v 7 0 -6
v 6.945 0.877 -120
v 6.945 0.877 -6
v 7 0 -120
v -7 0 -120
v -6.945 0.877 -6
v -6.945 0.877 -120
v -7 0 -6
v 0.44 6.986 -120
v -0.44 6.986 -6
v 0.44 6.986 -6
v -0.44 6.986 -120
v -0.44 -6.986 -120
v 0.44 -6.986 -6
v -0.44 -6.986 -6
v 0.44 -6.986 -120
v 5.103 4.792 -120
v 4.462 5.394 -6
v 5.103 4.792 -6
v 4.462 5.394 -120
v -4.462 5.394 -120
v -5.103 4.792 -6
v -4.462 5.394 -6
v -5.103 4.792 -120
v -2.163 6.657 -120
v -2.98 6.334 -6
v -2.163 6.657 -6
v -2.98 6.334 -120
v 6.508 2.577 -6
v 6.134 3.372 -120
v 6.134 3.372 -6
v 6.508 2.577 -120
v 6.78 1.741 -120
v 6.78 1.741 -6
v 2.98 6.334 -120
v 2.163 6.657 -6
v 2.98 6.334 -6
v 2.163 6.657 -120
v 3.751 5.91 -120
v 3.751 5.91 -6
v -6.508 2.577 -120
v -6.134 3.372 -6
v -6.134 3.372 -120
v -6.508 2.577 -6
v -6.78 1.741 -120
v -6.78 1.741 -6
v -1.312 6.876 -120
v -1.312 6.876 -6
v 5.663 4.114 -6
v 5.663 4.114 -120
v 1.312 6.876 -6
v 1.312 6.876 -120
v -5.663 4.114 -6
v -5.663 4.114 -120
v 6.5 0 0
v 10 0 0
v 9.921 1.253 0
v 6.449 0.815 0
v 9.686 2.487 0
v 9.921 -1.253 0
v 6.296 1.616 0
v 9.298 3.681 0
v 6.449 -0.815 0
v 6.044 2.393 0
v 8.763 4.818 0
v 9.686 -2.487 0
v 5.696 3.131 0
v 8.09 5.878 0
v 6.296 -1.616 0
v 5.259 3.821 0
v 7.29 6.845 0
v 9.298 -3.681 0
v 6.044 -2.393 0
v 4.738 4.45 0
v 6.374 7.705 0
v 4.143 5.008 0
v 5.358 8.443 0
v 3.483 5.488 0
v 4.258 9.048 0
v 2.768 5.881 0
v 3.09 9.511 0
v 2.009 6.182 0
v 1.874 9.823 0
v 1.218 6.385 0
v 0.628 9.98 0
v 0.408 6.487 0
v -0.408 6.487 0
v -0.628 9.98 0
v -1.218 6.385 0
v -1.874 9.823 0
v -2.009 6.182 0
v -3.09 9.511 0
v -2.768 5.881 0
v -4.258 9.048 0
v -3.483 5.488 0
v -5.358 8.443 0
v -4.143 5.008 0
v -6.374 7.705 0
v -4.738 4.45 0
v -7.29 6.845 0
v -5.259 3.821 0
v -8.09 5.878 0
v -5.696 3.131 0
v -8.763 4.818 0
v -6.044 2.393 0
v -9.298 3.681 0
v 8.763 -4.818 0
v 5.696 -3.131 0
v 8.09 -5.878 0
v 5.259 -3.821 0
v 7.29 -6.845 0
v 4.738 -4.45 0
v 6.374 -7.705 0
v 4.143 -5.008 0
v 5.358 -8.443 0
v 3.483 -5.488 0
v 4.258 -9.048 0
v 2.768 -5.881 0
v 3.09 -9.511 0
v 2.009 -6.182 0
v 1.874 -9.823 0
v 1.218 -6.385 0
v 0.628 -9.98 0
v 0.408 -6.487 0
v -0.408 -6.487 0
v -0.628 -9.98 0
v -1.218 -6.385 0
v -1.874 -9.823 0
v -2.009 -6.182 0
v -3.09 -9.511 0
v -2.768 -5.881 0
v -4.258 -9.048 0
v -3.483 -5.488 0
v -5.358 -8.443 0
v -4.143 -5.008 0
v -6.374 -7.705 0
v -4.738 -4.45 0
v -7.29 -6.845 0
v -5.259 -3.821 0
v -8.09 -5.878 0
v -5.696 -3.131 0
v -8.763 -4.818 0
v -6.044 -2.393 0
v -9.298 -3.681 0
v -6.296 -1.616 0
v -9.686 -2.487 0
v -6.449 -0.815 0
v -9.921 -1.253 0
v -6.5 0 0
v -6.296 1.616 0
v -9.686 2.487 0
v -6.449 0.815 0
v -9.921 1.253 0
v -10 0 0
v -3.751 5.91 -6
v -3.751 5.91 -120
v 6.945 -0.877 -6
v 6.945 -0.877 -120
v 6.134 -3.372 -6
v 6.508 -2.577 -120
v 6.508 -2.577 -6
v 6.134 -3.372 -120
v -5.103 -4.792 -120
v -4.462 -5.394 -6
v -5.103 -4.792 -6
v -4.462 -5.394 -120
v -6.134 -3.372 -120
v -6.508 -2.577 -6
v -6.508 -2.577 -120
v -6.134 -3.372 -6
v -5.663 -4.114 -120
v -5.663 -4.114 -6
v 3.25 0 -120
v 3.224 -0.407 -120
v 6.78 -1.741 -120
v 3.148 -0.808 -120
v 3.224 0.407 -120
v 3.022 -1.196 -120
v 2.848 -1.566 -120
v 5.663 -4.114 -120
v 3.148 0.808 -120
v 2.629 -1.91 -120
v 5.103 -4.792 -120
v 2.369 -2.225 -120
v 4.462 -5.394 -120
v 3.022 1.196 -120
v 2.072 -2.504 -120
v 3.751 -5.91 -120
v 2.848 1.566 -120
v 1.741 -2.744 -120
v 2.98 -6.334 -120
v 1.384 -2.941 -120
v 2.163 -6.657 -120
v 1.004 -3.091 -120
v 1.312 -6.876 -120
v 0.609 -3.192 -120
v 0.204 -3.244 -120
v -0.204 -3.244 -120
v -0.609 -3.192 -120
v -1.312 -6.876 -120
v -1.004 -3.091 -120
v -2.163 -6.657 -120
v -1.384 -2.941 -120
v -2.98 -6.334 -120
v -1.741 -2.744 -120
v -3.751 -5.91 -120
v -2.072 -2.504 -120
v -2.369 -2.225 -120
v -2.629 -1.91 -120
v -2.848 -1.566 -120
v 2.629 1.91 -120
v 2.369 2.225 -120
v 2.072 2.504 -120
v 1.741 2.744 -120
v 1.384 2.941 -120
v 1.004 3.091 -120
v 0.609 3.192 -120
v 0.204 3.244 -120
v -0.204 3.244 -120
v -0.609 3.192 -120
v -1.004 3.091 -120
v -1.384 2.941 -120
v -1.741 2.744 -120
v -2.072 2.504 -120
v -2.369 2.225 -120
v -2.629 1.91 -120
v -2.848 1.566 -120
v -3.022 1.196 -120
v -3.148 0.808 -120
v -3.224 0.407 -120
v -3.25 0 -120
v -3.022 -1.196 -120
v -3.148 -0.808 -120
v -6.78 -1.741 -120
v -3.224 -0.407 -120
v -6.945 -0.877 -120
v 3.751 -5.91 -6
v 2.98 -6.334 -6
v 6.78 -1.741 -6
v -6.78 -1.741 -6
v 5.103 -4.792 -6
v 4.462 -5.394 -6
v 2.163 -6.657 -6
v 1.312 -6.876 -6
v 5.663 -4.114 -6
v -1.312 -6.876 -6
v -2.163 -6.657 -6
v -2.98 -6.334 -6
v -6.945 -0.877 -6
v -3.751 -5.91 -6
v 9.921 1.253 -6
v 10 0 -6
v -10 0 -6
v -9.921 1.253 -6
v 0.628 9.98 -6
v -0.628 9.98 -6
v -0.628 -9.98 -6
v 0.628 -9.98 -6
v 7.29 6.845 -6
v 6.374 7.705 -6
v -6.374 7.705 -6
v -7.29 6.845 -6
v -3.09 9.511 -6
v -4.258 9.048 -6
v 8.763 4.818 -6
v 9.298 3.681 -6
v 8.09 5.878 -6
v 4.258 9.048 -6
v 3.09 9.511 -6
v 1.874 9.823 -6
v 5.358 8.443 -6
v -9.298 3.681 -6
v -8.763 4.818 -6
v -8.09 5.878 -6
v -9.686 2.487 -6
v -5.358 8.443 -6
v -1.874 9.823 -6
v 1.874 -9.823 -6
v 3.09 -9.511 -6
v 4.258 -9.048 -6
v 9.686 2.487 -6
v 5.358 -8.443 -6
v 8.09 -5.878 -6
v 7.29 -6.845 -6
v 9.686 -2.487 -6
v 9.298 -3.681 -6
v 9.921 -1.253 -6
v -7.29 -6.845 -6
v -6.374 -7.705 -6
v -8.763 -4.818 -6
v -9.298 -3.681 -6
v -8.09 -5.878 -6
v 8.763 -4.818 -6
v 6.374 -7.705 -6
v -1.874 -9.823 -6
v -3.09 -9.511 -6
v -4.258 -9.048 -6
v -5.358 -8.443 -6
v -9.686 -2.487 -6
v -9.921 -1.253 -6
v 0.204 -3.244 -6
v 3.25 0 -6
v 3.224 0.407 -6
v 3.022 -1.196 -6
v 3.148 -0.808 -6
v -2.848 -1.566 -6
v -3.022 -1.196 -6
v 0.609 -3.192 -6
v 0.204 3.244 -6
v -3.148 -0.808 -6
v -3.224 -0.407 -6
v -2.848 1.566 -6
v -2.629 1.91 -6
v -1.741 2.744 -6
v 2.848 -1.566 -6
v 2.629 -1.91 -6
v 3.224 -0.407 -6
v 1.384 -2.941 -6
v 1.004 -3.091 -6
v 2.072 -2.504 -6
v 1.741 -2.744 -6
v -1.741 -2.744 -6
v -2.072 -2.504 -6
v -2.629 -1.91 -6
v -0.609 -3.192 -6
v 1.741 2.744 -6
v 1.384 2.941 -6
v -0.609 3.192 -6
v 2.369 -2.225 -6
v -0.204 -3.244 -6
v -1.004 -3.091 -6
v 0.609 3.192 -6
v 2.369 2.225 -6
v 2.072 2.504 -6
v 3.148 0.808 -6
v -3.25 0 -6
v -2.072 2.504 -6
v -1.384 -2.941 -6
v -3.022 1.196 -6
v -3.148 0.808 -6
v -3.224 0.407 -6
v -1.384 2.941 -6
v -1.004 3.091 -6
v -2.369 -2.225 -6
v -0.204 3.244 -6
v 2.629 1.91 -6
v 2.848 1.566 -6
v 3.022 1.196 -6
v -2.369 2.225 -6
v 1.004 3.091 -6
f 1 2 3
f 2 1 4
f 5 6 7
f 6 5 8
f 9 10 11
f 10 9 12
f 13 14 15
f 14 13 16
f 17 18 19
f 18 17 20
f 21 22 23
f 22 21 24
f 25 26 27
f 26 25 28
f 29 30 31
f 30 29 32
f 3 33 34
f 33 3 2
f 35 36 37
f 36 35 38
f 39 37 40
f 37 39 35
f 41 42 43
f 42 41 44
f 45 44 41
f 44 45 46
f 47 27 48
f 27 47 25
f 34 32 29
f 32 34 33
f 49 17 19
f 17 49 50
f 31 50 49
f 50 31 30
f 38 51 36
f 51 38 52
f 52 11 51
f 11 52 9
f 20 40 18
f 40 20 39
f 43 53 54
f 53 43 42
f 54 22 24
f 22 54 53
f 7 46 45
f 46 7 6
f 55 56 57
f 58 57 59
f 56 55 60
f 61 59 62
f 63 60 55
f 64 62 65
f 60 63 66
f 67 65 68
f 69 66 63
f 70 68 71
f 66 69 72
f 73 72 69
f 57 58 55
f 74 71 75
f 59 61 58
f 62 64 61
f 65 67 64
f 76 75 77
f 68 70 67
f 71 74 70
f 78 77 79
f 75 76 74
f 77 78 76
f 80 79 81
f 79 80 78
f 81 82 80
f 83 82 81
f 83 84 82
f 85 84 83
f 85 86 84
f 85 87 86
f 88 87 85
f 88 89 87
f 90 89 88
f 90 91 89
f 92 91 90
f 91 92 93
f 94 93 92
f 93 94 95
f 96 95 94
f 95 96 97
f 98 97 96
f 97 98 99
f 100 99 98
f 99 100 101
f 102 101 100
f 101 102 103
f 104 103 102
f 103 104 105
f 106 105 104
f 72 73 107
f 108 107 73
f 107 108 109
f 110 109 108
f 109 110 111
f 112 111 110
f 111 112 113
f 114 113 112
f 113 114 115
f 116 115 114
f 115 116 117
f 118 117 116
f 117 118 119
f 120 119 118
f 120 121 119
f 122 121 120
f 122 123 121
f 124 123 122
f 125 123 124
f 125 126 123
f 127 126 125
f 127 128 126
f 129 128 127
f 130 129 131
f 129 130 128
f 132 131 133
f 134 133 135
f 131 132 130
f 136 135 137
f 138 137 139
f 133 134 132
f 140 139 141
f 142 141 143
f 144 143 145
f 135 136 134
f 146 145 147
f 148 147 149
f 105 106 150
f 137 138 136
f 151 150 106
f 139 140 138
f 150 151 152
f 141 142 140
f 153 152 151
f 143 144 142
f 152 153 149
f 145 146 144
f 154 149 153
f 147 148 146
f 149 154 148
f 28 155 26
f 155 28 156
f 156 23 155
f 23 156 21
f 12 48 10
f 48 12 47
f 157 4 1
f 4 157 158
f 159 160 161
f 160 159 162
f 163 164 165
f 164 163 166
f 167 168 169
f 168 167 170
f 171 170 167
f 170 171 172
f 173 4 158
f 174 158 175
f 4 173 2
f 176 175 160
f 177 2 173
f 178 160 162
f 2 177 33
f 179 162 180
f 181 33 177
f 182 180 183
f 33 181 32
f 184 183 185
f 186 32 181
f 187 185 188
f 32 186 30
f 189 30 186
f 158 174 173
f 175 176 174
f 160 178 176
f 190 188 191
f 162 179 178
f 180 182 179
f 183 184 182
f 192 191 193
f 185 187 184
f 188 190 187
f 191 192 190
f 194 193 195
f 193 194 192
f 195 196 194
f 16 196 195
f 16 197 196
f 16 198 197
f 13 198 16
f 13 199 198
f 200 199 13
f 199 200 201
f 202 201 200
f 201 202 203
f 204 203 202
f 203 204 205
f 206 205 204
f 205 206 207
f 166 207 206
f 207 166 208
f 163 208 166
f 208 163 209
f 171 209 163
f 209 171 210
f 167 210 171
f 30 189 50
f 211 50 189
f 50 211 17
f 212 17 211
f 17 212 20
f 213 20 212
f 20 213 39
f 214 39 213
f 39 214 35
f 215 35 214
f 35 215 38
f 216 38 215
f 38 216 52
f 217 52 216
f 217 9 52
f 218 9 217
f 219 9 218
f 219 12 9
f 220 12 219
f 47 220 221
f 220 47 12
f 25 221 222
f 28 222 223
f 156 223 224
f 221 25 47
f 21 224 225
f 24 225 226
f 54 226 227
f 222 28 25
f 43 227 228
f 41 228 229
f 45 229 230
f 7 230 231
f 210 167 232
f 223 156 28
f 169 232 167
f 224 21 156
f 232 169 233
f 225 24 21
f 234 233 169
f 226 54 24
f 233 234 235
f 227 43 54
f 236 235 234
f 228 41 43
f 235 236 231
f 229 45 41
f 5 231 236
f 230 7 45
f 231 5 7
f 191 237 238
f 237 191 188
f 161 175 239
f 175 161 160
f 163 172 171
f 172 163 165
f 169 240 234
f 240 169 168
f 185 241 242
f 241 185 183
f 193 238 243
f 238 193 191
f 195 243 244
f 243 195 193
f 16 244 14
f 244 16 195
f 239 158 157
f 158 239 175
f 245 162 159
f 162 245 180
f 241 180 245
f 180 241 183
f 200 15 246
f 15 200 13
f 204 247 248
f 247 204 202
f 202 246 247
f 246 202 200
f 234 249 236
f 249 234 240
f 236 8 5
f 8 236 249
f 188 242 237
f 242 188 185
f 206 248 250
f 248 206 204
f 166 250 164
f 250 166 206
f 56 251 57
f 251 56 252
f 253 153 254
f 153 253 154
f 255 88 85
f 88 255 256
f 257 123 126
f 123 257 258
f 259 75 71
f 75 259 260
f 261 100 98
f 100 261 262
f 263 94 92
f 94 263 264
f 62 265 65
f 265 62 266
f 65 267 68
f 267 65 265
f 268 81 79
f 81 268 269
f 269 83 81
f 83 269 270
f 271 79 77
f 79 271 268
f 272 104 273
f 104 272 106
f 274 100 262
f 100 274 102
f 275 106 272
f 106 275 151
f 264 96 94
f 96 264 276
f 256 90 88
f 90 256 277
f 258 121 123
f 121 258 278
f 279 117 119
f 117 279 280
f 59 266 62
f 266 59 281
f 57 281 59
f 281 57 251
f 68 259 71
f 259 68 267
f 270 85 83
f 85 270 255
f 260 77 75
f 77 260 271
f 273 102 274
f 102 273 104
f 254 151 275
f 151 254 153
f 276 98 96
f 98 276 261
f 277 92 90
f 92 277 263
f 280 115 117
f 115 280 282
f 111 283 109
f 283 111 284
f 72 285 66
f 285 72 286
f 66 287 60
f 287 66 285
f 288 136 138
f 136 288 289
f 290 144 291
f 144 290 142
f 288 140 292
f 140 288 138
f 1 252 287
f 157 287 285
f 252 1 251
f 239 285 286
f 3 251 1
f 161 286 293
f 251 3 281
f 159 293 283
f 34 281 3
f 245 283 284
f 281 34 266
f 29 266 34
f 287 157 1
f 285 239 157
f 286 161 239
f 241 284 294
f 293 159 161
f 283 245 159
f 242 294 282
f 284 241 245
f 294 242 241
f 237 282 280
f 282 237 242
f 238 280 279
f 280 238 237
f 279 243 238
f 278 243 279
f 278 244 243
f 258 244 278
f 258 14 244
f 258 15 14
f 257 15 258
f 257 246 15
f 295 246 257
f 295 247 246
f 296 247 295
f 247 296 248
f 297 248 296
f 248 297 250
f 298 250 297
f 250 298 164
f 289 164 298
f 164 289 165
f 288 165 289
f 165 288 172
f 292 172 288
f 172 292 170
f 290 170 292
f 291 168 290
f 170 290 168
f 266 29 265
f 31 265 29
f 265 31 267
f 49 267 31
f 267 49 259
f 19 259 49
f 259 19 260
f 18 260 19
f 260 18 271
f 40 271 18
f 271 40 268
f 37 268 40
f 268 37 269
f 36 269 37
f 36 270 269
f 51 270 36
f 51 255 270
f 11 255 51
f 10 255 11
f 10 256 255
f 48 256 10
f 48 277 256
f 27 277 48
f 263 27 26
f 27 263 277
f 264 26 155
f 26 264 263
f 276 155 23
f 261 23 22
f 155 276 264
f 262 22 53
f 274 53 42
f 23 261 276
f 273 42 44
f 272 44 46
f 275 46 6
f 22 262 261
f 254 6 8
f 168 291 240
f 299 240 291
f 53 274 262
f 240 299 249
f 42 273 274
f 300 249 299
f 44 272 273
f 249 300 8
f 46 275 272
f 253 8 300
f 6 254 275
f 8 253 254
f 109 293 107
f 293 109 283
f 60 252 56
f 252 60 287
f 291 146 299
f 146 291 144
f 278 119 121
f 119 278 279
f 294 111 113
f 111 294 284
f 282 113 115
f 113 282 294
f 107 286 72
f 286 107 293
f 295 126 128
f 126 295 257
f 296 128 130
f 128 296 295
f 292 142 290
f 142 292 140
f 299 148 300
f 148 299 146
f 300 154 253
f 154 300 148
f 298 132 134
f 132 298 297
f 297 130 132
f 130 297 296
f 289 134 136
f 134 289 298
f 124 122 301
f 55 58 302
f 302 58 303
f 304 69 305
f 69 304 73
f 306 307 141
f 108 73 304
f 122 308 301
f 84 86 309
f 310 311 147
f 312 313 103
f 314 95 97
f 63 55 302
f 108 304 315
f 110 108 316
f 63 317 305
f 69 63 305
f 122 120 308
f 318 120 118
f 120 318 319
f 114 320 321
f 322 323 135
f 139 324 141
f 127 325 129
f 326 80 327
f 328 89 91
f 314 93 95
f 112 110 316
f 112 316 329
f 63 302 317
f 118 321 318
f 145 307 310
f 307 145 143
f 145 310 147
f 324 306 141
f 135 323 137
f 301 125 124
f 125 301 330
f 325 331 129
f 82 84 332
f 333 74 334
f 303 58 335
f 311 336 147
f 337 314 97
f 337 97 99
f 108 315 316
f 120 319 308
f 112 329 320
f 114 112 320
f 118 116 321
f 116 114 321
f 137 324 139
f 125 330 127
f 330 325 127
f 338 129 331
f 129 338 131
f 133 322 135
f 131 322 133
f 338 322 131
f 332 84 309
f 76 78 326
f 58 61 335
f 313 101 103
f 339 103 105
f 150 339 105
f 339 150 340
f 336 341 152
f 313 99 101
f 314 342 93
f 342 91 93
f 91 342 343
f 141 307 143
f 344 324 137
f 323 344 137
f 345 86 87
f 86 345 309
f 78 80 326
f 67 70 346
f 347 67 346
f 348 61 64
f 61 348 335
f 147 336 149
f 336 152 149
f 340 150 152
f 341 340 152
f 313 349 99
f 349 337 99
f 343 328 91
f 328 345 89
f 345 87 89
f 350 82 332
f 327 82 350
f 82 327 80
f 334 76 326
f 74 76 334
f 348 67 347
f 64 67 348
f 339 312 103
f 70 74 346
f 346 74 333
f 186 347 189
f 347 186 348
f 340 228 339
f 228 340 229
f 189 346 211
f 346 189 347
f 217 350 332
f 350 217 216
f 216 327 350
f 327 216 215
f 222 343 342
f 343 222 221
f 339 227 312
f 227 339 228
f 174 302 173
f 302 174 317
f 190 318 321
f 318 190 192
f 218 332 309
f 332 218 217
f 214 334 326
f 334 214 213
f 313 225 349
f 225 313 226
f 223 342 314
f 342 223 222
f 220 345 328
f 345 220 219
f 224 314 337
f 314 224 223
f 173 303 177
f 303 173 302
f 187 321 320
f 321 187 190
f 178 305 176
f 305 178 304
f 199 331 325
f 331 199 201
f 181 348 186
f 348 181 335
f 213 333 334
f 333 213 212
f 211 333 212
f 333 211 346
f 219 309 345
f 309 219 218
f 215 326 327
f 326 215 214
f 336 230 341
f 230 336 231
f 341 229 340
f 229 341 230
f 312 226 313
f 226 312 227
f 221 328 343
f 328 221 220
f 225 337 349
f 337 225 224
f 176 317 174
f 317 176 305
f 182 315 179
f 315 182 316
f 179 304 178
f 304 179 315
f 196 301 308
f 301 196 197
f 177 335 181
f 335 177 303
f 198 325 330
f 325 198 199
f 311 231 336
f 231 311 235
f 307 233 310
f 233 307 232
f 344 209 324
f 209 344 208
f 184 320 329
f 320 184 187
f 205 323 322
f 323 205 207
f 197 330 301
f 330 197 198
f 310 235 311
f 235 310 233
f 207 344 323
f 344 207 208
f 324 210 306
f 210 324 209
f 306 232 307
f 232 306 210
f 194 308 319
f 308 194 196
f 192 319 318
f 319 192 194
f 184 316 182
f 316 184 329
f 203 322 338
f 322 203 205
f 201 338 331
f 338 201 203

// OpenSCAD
$fn = 50;


difference() {
	union() {
		translate(v = [0, 0, -120.0000000000]) {
			cylinder(h = 120, r = 7.0000000000);
		}
		translate(v = [0, 0, -6.0000000000]) {
			cylinder(h = 6, r = 10.0000000000);
		}
	}
	union() {
		translate(v = [0, 0, 0]) {
			rotate(a = [0, 0, 0]) {
				difference() {
					union() {
						#translate(v = [0, 0, -120.0000000000]) {
							cylinder(h = 120, r = 2.2500000000);
						}
						#translate(v = [0, 0, -6]) {
							cylinder(h = 6, r1 = 3.2500000000, r2 = 6.5000000000);
						}
						#translate(v = [0, 0, -120.0000000000]) {
							cylinder(h = 120, r = 3.2500000000);
						}
						#translate(v = [0, 0, -120.0000000000]) {
							cylinder(h = 120, r = 2.2500000000);
						}
					}
					union();
				}
			}
		}
	}
}
